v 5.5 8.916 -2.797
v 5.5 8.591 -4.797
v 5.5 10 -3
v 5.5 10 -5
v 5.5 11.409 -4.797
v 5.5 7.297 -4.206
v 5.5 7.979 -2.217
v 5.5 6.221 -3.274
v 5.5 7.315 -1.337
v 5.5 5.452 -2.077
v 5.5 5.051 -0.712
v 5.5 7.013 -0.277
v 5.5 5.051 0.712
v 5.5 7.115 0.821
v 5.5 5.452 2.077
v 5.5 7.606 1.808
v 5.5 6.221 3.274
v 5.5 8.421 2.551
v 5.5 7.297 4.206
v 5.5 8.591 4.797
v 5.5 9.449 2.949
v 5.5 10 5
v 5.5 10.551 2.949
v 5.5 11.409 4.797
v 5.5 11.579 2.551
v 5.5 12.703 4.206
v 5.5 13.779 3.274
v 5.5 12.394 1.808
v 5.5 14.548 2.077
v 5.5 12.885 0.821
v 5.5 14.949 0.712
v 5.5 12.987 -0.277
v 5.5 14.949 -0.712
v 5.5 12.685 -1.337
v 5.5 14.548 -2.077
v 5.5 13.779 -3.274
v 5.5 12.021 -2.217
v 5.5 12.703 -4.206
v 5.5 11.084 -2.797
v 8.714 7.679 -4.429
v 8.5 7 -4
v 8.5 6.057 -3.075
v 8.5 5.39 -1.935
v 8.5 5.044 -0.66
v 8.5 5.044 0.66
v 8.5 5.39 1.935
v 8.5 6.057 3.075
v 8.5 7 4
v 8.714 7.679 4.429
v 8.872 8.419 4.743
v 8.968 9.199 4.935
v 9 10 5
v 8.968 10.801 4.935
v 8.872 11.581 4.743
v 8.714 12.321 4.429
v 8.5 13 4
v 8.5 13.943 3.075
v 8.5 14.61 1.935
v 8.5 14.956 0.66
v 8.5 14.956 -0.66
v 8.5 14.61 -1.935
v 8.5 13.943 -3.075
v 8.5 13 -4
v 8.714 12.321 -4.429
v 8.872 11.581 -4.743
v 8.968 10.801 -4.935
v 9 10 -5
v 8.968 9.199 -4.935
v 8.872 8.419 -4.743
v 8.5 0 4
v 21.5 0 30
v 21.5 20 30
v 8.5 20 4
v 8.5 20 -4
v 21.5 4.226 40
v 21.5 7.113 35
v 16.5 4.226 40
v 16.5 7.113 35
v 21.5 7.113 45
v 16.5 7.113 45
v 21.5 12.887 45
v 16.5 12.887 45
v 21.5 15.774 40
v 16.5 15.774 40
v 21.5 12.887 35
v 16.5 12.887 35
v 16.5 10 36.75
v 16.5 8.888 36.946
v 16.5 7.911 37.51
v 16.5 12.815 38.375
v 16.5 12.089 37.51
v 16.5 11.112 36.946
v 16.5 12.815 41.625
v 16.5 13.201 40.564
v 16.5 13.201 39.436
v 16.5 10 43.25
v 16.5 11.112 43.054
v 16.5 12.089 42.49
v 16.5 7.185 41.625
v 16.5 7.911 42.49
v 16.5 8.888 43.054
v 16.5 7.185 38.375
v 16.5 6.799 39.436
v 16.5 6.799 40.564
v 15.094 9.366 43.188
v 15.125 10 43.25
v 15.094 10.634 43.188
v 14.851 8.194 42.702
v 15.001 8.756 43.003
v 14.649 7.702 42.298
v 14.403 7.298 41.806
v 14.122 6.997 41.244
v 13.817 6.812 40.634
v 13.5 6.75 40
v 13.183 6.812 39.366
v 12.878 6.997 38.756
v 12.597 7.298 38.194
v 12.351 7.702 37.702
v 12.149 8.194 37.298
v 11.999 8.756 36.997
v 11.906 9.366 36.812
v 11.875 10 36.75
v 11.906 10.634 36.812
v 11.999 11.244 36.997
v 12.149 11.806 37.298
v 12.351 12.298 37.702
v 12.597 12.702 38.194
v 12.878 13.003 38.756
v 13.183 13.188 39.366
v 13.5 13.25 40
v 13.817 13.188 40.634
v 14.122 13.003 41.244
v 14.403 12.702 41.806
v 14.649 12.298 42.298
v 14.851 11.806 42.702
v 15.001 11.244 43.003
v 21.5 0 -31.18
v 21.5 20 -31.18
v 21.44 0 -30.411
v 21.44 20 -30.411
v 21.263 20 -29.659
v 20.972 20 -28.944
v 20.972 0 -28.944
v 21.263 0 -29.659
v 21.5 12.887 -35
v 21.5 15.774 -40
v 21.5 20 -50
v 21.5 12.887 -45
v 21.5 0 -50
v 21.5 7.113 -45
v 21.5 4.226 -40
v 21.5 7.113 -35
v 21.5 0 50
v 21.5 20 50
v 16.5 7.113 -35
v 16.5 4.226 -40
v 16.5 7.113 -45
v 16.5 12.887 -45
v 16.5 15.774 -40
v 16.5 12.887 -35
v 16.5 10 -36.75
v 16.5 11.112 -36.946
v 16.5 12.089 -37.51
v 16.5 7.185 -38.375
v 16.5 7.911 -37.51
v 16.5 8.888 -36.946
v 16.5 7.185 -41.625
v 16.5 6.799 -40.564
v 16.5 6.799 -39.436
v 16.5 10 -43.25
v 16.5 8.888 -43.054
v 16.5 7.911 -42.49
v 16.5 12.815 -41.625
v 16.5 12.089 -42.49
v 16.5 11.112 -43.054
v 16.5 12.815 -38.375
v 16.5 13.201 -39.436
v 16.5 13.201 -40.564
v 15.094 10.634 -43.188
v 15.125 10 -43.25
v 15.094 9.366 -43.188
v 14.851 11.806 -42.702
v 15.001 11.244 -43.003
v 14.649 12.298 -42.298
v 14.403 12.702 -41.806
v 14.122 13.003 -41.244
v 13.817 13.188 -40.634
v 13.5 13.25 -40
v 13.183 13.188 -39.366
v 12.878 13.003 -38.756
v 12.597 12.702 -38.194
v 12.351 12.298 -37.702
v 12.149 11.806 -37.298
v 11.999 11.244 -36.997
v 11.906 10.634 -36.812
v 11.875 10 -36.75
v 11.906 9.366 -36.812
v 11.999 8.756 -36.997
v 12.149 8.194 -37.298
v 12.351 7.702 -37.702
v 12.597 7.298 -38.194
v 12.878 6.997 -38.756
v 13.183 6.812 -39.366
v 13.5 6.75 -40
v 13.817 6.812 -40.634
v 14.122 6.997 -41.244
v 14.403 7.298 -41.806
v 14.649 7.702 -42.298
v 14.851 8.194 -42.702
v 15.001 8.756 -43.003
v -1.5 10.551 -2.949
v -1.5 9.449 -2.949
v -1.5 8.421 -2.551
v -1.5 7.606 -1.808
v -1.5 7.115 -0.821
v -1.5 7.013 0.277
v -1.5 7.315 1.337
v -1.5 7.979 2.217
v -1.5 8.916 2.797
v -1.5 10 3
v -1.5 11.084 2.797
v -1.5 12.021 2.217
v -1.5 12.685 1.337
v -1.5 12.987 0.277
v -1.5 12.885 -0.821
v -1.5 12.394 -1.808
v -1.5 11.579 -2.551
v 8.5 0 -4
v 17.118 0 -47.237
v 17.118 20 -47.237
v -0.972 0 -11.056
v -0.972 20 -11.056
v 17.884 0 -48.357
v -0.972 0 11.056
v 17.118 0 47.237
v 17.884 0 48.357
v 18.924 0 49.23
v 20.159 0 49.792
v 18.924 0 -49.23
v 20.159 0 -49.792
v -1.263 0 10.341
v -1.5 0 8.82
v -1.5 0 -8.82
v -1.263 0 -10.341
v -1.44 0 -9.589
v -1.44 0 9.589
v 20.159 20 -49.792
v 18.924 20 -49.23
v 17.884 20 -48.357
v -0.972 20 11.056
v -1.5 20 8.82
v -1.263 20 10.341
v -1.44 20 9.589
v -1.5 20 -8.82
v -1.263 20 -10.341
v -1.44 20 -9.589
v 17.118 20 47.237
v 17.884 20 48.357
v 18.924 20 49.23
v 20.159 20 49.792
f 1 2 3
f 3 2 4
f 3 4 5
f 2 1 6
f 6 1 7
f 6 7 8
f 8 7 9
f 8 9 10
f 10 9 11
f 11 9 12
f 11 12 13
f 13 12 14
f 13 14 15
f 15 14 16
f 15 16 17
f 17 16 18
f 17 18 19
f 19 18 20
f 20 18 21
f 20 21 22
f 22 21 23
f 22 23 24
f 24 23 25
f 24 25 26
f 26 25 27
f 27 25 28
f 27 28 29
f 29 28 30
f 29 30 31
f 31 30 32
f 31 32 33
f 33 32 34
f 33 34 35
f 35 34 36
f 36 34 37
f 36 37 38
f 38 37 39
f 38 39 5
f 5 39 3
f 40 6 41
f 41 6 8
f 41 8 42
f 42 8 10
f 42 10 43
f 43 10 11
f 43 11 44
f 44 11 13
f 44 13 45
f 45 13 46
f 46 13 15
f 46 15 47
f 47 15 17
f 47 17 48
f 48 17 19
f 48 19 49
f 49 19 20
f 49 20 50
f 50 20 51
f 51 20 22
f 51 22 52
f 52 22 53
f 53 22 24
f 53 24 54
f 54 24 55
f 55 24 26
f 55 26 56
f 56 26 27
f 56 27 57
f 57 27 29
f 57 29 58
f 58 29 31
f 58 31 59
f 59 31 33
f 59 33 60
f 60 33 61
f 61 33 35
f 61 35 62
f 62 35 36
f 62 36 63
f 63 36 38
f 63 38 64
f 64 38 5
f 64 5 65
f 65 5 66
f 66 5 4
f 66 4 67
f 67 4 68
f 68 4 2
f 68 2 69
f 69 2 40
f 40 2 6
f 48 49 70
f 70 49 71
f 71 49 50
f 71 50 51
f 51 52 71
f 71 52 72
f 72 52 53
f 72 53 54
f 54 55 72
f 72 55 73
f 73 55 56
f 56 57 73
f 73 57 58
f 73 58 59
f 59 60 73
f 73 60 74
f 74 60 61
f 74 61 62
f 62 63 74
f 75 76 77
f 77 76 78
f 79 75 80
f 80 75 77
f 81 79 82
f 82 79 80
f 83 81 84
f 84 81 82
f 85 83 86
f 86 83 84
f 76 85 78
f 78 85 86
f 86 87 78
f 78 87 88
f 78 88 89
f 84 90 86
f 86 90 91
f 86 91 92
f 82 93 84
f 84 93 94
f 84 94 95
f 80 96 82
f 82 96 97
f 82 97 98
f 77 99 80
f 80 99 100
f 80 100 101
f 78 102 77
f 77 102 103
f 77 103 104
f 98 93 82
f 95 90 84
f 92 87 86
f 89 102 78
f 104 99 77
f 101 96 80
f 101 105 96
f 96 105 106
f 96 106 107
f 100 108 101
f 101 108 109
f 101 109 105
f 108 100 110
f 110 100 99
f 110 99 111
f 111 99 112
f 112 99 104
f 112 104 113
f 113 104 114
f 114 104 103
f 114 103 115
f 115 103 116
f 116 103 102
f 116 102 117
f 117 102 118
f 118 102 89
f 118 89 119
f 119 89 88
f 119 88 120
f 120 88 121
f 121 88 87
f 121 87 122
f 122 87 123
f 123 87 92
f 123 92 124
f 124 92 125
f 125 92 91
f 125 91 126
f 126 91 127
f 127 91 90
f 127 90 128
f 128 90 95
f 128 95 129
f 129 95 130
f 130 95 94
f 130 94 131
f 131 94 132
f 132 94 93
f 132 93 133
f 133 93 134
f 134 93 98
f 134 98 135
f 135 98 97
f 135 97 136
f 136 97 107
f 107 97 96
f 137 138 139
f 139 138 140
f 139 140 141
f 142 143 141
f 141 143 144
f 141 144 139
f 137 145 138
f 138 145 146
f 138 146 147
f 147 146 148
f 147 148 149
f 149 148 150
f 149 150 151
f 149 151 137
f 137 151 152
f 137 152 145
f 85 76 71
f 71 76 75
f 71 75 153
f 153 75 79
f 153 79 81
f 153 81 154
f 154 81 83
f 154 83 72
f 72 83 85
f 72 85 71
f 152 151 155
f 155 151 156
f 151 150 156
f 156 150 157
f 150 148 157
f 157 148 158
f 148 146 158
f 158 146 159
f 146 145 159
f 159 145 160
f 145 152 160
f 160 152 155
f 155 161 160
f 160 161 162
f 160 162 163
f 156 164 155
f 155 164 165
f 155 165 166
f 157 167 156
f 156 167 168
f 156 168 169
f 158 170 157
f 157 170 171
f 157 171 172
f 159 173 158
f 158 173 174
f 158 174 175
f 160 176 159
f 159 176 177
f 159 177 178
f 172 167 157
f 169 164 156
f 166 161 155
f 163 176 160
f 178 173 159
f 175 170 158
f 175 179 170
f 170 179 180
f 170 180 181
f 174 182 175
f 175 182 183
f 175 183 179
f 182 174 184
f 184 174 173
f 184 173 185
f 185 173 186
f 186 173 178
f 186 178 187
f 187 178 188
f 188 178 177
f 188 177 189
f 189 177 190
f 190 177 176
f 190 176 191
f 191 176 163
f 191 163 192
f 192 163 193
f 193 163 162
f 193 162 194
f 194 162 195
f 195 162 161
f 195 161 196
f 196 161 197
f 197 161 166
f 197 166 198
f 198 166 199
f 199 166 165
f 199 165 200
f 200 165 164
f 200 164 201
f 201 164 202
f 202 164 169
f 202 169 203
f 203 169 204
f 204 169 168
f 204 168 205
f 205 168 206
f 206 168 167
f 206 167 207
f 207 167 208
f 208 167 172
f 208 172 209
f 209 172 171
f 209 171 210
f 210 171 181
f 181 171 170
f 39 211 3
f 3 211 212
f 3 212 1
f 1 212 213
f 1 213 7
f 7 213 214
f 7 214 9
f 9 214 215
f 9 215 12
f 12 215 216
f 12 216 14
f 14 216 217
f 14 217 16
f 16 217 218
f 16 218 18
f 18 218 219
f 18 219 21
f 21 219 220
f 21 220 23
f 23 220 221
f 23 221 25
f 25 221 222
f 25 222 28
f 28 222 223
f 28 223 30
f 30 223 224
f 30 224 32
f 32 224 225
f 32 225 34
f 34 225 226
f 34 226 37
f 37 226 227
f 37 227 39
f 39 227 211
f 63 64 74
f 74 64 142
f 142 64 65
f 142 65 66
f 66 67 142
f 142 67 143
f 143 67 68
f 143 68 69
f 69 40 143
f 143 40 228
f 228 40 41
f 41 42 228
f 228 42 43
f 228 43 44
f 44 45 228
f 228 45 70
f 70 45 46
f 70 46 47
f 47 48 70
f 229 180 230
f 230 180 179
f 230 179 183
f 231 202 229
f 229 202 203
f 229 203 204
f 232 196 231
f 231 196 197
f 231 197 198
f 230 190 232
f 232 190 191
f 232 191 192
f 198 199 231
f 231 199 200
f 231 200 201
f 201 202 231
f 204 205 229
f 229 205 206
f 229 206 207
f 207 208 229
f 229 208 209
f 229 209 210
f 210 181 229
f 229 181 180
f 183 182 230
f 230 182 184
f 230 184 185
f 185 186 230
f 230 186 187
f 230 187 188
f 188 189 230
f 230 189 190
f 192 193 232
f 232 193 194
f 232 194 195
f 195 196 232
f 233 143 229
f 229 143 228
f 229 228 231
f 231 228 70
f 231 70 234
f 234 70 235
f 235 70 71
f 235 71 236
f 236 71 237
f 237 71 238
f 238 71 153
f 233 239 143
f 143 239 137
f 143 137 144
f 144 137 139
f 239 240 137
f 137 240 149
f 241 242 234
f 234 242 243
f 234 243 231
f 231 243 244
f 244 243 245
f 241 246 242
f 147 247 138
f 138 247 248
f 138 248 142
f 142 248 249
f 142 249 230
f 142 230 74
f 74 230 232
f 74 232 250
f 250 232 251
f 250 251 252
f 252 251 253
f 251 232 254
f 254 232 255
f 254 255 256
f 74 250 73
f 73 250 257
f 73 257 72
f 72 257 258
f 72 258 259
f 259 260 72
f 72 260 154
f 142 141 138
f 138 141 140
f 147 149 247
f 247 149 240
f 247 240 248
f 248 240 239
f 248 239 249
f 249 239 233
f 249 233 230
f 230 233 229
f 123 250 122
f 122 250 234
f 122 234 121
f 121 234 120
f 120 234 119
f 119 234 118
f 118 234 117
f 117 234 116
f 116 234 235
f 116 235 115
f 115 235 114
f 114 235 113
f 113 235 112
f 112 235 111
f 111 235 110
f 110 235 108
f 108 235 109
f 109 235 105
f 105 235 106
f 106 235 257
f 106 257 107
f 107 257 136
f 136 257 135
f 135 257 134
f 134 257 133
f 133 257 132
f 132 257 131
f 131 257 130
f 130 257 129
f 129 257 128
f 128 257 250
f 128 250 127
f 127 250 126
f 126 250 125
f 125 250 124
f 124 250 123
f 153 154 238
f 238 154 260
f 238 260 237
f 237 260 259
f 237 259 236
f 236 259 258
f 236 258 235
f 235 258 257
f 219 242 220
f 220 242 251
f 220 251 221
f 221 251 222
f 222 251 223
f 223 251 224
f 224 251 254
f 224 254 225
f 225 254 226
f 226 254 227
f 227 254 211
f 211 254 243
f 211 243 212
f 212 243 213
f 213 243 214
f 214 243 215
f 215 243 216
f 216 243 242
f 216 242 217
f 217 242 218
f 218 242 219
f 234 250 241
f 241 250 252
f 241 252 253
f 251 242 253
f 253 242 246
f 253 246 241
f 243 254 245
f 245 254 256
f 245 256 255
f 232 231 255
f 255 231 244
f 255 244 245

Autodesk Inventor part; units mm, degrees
ref_plane "YZ Plane" through (0, 0, 0) normal (1, 0, 0) x (0, 1, 0)
ref_plane "XZ Plane" through (0, 0, 0) normal (0, 1, 0) x (-1, 0, 0)
ref_plane "XY Plane" through (0, 0, 0) normal (0, 0, 1) x (1, 0, 0)
sketch "Sketch1" plane through (0, 0, 0) normal (0, 1, 0) x (-1, 0, 0)
  line L0 (0, 0) -> (-20, 0)
  line L1 (-20, 0) -> (-20, -40)
  line L2 (-20, -40) -> (0, 0)
  line L3 (-21.5, -50) -> (-18.5, -50)
  line L4 (-18.5, -50) -> (-18.5, -30)
  line L5 (-18.5, -30) -> (-21.5, -30)
  line L6 (-21.5, -30) -> (-21.5, -50)
  line L7 (-21.5, -50) -> (-18.5, -30) construction
  line L8 (-18.5, -50) -> (-21.5, -30) construction
  line L9 (1.5, 10) -> (-1.5, 10)
  line L10 (-1.5, 10) -> (-1.5, -10)
  line L11 (-1.5, -10) -> (1.5, -10)
  line L12 (1.5, -10) -> (1.5, 10)
  line L13 (1.5, 10) -> (-1.5, -10) construction
  line L14 (-1.5, 10) -> (1.5, -10) construction
  line L15 (-1.5, 10) -> (-21.5, -30)
  line L16 (1.5, -10) -> (-18.5, -50)
  line L17 (1.5, -10) -> (1.5, 10)
  line L18 (1.5, -10) -> (1.5, 10)
  line L19 (1.5, 10) -> (-8.5, 10)
  line L20 (-8.5, 10) -> (-8.5, -10)
  line L21 (-8.5, -10) -> (1.5, -10)
  line L22 (1.5, -10) -> (1.5, 10)
  line L23 (0, 0) -> (10, 0)
  line L24 (0, 0) -> (10, 0) construction
  line L25 (-20, 40) -> (0, 0)
  line L26 (-21.5, 50) -> (-18.5, 50)
  line L27 (-18.5, 50) -> (-18.5, 30)
  line L28 (-18.5, 30) -> (-21.5, 30)
  line L29 (-21.5, 30) -> (-21.5, 50)
  line L30 (-1.5, -10) -> (-1.5, 10)
  line L31 (-1.5, 10) -> (1.5, 10)
  line L32 (-1.5, -10) -> (-21.5, 30)
  line L33 (1.5, 10) -> (-18.5, 50)
  line L34 (1.5, 10) -> (1.5, -10)
  point P0 (-7.3579, -1.7157)
  point P1 (-11.5, -10)
  point P2 (-11.5, -10)
  point P3 (-8.5, -4)
  point P4 (-8.5, 4)
  dimension "d0" = 20
  dimension "d1" = 40
  dimension "d2" = 3
  dimension "d3" = 20
  dimension "d4" = 3
  dimension "d5" = 20
  dimension "d31" = 10
  dimension "d32" = 20
  dimension "d42" = 10
  dimension "d43" = 0
extrude "Extrusion1" add sketch "Sketch1" along normal blind 20 contours L2 L10 L0 | L23 L12 L11 L10 L2 | L25 L10 L9 L12 L23 | L0 L10 L25 | L10 L2 L32 L0 | L0 L15 L25 L10 | L10 L32 L2 | L25 L15 L10 | L15 L20 L0 | L32 L20 L19 L25 L15 | L32 L2 L21 L20 L15 | L0 L20 L32 | L32 L21 L2 | L11 L16 L4 L2 L21 | L9 L19 L25 L27 L33 | L15 L25 L19 | L20 L21 L2 L4 L5 L1 L15 | L32 L28 L27 L25 L19 L20 | L3 L6 L5 L1 L2 L4 | L27 L28 L29 L26 | L1 L5 L15 | L2 L1 L5 L4
sketch "Sketch2" plane through (-1.5, 0, -10) normal (-1, 0, 0) x (0, 0, 1)
  circle A0 centre (10, 10) radius 3
  line L0 (0, 0) -> (20, 0) projected
  line L1 (20, 0) -> (20, 20) projected
  point P0 (10, 0)
  dimension "d8" = 6
  dimension "d9" = 10
  dimension "d44" = 10
sketch "Sketch3" plane through (21.5, 0, -30) normal (1, 0, 0) x (0, 0, -1)
  circle A0 centre (10, 10) radius 3.25
  line L0 (0, 20) -> (20, 20) projected
  line L1 (20, 0) -> (20, 20) projected
  point P0 (-30, 0)
  dimension "d11" = 6.5
  dimension "d12" = 10
  dimension "d13" = 10
extrude "Extrusion2" cut sketch "Sketch2" against normal through all
extrude "Extrusion3" cut sketch "Sketch3" against normal through all
sketch "Sketch4" plane through (21.5, 0, -30) normal (1, 0, 0) x (0, 0, -1)
  circle A0 centre (10, 10) radius 3.25 projected
  line L0 (10, 15.7735) -> (15, 12.8868)
  line L1 (15, 12.8868) -> (15, 7.1132)
  line L2 (15, 7.1132) -> (10, 4.2265)
  line L3 (10, 4.2265) -> (5, 7.1132)
  line L4 (5, 7.1132) -> (5, 12.8868)
  line L5 (5, 12.8868) -> (10, 15.7735)
  line L6 (20, 0) -> (20, 20) projected
  point P0 (-30, 0)
  point P1 (10, 10)
  dimension "d19" = 10
extrude "Extrusion4" cut sketch "Sketch4" against normal blind 5
fillet "Fillet2" radius 5 1 edges at (21.5, 10, -30)
mirror "Mirror1" about plane through (0, 0, 0) normal (0, 0, 1) of "Extrusion4", "Extrusion3"
sketch "Sketch7" plane through (8.5, 0, 4) normal (1, 0, 0) x (0, 0, -1)
  circle A0 centre (4, 10) radius 3 projected
  circle A1 centre (4, 10) radius 5
  point P0 (4, 0)
  dimension "d52" = 10
extrude "Extrusion6" cut sketch "Sketch7" along normal mid plane 6 contours A0 | A1
fillet "Fillet8" radius 5 2 edges at (-1.5, 10, 10) (-1.5, 10, -10)
fillet "Fillet9" radius 5 2 edges at (18.5, 10, 50) (18.5, 10, -50)
ref_plane "Work Plane1" through (0, 0, 0) normal (0, 0, 1) x (1, 0, 0)
properties part number "Bottom_Foot_Standoff" material "PET Plastic"
